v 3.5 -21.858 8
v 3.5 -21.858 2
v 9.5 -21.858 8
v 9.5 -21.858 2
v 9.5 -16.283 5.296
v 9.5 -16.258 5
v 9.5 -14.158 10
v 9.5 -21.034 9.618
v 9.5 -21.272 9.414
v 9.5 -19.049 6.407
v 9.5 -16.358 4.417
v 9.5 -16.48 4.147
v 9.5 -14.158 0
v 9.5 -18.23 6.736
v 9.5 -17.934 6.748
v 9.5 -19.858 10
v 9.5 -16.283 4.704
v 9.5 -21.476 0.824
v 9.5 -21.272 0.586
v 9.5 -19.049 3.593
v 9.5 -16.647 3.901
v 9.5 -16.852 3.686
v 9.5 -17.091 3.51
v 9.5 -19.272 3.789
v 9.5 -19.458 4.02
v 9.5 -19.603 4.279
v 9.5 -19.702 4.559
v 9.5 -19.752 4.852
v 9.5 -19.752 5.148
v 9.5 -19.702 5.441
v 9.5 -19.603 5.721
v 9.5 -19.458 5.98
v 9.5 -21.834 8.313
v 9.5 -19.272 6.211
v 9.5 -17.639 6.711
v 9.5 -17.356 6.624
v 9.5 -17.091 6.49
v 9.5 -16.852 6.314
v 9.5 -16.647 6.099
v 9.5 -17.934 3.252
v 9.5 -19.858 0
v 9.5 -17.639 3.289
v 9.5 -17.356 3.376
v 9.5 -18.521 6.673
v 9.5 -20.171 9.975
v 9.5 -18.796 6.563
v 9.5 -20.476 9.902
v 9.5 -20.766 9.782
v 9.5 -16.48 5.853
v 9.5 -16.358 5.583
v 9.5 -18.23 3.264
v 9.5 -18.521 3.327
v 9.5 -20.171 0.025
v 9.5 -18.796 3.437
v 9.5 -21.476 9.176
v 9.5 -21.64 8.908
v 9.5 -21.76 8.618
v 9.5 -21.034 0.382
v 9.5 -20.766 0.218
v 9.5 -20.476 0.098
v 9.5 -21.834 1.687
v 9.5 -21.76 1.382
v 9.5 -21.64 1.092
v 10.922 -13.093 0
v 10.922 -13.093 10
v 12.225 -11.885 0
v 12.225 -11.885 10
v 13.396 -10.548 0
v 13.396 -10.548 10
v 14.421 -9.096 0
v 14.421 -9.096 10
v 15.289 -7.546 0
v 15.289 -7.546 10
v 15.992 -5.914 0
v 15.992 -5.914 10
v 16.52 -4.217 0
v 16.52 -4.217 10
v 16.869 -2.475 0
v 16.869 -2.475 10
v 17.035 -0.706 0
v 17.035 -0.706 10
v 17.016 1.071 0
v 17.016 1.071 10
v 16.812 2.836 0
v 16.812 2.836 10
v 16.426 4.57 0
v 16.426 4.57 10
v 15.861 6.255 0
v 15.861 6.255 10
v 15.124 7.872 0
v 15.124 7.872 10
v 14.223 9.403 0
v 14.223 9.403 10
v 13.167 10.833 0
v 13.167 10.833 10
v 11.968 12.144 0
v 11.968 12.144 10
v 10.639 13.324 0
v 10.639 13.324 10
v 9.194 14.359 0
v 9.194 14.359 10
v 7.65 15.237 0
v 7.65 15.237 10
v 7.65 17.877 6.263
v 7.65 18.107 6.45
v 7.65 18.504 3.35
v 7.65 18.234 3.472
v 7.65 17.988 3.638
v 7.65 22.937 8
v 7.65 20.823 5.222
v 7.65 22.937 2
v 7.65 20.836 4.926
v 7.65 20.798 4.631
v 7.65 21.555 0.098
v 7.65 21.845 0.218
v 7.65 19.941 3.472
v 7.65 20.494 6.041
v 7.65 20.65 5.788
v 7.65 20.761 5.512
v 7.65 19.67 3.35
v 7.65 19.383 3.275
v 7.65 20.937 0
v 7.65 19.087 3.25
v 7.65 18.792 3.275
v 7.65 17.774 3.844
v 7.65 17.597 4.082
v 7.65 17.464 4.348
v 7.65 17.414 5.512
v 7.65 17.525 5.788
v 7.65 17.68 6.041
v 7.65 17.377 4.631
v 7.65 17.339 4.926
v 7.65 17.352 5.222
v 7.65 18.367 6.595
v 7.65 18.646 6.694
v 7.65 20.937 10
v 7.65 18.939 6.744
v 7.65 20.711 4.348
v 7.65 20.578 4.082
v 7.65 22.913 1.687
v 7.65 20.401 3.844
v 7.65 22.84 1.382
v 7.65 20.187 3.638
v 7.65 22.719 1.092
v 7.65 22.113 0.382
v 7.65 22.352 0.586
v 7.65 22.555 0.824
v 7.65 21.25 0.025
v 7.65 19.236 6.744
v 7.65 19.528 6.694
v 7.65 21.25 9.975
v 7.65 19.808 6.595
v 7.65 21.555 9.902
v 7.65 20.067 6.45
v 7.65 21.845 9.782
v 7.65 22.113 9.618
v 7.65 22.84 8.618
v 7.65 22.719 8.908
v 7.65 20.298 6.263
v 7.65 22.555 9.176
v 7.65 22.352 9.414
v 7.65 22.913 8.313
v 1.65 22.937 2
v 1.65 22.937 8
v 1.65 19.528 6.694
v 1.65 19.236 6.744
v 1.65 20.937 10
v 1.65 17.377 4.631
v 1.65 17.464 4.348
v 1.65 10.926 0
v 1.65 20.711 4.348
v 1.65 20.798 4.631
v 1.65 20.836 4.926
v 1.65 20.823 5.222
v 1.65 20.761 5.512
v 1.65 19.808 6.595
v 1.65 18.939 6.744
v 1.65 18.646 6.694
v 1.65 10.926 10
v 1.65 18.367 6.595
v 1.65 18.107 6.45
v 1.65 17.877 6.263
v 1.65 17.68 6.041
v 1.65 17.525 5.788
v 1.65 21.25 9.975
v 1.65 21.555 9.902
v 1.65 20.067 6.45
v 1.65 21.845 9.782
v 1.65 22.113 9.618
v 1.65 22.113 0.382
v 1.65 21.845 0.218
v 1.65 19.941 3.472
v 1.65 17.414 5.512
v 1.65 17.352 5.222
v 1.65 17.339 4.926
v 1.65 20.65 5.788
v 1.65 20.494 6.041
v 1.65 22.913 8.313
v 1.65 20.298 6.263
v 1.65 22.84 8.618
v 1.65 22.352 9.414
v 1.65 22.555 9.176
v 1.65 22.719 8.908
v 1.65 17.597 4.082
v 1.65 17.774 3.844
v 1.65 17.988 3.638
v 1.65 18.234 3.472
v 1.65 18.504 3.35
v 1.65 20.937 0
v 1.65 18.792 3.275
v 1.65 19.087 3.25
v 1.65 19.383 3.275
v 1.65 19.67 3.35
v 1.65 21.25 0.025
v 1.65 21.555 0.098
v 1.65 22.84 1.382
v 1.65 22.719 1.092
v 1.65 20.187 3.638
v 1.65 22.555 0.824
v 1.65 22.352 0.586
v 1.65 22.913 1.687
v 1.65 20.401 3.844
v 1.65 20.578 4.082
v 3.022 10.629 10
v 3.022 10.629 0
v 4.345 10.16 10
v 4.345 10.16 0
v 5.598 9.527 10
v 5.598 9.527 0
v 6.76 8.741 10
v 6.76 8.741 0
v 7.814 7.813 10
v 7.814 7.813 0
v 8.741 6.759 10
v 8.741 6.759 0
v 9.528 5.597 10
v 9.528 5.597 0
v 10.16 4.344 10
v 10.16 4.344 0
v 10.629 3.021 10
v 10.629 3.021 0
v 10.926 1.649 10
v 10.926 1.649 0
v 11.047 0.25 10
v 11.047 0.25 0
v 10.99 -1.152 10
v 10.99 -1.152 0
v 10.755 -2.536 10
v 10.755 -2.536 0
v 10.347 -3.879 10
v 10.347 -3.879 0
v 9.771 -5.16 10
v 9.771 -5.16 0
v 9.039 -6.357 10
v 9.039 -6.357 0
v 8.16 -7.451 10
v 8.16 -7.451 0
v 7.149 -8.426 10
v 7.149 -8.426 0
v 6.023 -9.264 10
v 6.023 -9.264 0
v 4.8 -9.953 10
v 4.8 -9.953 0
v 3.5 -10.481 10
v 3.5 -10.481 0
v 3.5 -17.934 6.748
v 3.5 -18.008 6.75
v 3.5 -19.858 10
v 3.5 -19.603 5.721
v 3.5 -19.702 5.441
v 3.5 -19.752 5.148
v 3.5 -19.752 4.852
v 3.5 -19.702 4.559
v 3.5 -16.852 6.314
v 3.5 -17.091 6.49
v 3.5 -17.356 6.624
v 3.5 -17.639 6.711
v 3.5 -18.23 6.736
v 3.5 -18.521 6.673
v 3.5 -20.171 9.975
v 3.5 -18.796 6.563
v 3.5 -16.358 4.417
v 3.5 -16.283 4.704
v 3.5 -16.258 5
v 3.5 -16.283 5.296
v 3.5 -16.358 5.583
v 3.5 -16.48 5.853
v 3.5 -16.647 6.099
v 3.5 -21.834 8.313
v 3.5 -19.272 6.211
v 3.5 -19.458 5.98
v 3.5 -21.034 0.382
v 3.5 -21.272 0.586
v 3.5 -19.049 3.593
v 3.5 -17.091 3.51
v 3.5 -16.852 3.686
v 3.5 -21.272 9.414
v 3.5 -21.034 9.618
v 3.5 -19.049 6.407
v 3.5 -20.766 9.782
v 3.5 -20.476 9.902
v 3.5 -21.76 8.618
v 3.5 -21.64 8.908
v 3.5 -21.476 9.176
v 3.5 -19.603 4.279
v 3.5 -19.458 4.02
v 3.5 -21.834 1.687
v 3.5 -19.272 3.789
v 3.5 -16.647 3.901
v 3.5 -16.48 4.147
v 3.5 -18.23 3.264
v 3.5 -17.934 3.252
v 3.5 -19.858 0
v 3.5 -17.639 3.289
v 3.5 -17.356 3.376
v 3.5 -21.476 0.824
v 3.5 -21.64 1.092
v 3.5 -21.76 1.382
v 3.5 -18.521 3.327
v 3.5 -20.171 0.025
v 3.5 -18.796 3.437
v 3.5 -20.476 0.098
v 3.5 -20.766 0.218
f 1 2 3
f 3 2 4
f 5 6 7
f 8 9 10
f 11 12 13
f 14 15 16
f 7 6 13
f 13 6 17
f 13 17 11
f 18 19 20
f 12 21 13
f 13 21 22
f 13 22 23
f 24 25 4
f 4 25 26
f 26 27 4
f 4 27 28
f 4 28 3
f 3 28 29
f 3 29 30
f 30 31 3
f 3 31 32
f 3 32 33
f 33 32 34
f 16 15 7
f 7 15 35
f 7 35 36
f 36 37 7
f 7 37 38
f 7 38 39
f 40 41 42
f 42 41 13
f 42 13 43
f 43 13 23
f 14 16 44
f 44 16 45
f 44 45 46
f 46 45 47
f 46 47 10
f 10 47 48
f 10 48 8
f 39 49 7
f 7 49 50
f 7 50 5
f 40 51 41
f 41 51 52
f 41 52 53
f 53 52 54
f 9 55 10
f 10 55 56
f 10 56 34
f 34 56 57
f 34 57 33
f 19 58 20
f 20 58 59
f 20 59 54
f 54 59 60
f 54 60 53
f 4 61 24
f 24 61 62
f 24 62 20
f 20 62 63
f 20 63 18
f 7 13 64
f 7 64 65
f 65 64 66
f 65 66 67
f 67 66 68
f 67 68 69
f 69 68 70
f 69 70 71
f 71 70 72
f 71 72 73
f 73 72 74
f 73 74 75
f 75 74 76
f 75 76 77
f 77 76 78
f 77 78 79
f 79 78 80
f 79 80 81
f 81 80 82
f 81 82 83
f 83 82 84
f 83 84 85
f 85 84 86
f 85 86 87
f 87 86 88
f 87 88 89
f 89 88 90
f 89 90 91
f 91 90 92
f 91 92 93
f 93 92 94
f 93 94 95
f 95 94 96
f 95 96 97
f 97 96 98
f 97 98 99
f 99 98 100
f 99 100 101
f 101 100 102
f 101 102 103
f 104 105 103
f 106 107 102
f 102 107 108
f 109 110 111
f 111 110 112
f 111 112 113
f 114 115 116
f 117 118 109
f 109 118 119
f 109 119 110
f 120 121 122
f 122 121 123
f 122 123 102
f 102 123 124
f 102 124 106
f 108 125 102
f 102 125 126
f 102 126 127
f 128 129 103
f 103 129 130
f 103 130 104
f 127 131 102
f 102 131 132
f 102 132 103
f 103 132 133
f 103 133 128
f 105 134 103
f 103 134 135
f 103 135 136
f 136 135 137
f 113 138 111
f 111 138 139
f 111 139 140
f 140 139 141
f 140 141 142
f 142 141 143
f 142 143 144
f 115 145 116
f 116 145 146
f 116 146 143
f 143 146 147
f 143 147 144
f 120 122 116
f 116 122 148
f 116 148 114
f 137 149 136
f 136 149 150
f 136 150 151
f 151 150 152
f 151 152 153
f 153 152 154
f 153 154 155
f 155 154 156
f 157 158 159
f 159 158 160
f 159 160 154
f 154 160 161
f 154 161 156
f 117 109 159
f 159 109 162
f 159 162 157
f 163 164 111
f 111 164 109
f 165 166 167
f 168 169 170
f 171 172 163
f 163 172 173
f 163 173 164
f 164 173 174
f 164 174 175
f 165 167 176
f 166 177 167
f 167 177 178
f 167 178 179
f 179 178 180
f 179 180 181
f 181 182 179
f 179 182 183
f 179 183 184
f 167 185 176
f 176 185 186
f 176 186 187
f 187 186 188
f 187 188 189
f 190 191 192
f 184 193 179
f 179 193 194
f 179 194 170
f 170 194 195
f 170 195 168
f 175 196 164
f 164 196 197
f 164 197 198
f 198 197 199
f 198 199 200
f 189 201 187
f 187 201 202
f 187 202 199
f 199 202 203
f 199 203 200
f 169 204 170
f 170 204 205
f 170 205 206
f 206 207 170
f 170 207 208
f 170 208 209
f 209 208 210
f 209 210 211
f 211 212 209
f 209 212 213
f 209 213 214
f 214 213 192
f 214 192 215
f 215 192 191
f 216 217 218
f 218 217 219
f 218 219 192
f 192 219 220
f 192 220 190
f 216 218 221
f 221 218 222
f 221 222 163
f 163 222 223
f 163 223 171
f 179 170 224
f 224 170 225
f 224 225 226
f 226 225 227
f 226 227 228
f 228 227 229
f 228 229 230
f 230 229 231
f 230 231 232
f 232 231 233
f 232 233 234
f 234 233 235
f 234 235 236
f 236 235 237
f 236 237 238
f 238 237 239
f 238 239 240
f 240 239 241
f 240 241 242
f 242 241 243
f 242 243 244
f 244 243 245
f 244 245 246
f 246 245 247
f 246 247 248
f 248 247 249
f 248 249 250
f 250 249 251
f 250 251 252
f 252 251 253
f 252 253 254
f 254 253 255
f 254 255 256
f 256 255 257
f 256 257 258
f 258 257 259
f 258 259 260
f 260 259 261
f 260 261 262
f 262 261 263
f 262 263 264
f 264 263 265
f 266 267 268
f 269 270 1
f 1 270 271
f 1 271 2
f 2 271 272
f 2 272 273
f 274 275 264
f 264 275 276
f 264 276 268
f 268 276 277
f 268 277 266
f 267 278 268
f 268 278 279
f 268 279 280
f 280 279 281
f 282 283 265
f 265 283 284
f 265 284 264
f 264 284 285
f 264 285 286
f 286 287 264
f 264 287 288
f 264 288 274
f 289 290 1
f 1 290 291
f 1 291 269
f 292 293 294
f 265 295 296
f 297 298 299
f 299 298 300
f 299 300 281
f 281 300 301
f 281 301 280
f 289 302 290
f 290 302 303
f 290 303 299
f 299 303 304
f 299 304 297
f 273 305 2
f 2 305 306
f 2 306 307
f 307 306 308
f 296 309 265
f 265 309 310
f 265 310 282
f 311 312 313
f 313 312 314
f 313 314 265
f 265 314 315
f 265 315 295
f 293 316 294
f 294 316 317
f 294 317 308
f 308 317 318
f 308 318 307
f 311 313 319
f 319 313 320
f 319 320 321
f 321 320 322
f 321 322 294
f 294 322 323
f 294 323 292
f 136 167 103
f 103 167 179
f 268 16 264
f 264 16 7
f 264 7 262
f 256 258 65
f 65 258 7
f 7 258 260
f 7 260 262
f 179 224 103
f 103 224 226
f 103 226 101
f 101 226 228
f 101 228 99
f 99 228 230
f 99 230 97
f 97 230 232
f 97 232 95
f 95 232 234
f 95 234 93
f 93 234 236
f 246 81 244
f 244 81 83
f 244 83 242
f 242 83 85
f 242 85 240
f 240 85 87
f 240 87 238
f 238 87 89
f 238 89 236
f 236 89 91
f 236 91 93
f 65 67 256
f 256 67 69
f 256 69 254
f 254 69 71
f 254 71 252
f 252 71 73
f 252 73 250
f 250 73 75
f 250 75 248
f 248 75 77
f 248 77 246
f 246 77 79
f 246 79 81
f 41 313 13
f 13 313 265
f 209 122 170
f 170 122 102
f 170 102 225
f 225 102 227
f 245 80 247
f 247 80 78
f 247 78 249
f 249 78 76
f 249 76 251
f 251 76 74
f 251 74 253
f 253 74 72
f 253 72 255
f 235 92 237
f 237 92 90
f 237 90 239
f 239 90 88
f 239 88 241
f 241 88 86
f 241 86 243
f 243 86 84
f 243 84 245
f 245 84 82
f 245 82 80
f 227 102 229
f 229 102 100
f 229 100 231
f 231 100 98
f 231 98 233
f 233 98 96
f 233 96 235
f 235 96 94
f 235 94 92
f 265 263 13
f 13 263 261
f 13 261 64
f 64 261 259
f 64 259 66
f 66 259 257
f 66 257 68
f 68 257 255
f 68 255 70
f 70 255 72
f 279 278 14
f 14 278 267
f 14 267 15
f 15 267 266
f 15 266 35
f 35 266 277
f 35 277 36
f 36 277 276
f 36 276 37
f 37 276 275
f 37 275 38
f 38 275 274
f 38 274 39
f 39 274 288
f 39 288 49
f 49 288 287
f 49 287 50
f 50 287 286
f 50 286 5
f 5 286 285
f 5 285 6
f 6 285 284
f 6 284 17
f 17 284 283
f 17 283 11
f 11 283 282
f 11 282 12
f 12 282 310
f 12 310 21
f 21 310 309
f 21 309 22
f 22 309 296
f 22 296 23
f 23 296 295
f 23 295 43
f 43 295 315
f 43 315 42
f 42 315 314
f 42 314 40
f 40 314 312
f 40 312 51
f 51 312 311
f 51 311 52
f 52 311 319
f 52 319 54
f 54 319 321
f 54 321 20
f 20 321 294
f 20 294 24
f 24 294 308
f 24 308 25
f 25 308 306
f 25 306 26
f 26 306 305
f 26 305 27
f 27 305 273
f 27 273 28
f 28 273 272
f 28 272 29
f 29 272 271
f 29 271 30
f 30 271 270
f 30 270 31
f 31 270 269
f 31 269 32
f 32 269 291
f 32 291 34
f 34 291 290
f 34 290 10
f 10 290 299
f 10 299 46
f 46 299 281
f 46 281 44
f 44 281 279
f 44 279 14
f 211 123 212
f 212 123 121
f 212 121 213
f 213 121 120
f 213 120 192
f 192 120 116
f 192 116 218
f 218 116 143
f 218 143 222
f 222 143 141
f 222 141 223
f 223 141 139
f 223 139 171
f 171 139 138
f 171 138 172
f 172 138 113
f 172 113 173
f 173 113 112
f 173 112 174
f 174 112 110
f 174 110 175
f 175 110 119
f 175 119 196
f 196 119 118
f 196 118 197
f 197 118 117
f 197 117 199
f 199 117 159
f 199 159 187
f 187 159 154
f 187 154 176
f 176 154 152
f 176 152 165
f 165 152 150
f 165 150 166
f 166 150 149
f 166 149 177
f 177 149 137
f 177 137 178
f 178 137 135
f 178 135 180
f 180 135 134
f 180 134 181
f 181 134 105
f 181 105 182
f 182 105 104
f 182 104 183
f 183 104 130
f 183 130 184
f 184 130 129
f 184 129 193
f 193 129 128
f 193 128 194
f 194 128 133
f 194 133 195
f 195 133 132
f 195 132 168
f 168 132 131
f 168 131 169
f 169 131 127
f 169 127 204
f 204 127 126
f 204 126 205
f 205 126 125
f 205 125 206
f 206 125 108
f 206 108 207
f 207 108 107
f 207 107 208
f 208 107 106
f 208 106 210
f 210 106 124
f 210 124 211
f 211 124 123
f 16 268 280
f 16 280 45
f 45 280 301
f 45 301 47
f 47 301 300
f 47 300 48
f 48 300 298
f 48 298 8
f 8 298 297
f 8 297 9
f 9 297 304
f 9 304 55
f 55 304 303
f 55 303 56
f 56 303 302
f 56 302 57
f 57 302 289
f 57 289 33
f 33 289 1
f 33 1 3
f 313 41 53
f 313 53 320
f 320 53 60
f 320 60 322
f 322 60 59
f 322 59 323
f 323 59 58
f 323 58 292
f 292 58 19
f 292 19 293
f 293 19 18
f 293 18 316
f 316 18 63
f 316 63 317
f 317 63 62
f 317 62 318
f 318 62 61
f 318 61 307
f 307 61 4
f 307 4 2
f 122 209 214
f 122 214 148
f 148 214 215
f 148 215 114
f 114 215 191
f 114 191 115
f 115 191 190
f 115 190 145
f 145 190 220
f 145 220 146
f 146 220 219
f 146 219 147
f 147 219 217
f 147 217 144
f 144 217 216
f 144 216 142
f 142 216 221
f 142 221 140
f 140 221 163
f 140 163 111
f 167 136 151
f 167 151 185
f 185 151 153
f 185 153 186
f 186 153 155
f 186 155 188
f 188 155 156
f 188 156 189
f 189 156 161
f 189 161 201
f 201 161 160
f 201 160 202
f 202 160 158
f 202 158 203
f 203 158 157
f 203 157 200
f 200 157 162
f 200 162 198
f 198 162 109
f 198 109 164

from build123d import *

# Parameters (mm, degrees)
BOSS_EXTRUDE1_DEPTH = 10
SKETCH3_R           = 1.75
CUT_EXTRUDE1_DEPTH  = 10
SKETCH2_R           = 1.75
CUT_EXTRUDE2_DEPTH  = 10
FILLET1_R           = 2


with BuildPart() as part:
    # Sketch1 → Boss-Extrude1 (new body)
    with BuildSketch(Plane.XY):
        with BuildLine():
            Line((3.5, -17.05), (3.5, -10.481054336))
            ThreePointArc((3.5, -10.481054336), (11.008967033, 0.951391014), (1.65, 10.926115504))
            Line((1.65, 10.926115504), (1.65, 20.437453856))
            Line((1.65, 20.437453856), (1.65, 22.937453856))
            Line((1.65, 22.937453856), (7.65, 22.937453856))
            Line((7.65, 22.937453856), (7.65, 15.237453856))
            ThreePointArc((7.65, 15.237453856), (17.016334424, 1.070916786), (9.5, -14.158124876))
            Line((9.5, -14.158124876), (9.5, -21.858124876))
            Line((9.5, -21.858124876), (3.5, -21.858124876))
            Line((3.5, -21.858124876), (3.5, -19.358124876))
            Line((3.5, -19.358124876), (3.5, -17.05))
        make_face()
    extrude(amount=BOSS_EXTRUDE1_DEPTH)

    # Sketch3 → Cut-Extrude1 (cut)
    with BuildSketch(Plane(origin=(9.5, 0, 0), x_dir=(0, 0, -1), z_dir=(1, 0, 0))):
        with Locations(Location((-5, -18.008124876, 0), (0, 0, 90))):
            Circle(SKETCH3_R)
    extrude(amount=-CUT_EXTRUDE1_DEPTH, mode=Mode.SUBTRACT)

    # Sketch2 → Cut-Extrude2 (cut)
    with BuildSketch(Plane(origin=(7.65, 0, 0), x_dir=(0, 0, -1), z_dir=(1, 0, 0))):
        with Locations((-5, 19.087453856)):
            Circle(SKETCH2_R)
    extrude(amount=-CUT_EXTRUDE2_DEPTH, mode=Mode.SUBTRACT)

    # Fillet1
    fillet1_edges = [part.edges().sort_by_distance(p)[0] for p in [
        (4.65, 22.937453856, 0),
        (6.5, -21.858124876, 10),
        (6.5, -21.858124876, 0),
        (4.65, 22.937453856, 10),
    ]]
    fillet(fillet1_edges, radius=FILLET1_R)


solid = part.part
